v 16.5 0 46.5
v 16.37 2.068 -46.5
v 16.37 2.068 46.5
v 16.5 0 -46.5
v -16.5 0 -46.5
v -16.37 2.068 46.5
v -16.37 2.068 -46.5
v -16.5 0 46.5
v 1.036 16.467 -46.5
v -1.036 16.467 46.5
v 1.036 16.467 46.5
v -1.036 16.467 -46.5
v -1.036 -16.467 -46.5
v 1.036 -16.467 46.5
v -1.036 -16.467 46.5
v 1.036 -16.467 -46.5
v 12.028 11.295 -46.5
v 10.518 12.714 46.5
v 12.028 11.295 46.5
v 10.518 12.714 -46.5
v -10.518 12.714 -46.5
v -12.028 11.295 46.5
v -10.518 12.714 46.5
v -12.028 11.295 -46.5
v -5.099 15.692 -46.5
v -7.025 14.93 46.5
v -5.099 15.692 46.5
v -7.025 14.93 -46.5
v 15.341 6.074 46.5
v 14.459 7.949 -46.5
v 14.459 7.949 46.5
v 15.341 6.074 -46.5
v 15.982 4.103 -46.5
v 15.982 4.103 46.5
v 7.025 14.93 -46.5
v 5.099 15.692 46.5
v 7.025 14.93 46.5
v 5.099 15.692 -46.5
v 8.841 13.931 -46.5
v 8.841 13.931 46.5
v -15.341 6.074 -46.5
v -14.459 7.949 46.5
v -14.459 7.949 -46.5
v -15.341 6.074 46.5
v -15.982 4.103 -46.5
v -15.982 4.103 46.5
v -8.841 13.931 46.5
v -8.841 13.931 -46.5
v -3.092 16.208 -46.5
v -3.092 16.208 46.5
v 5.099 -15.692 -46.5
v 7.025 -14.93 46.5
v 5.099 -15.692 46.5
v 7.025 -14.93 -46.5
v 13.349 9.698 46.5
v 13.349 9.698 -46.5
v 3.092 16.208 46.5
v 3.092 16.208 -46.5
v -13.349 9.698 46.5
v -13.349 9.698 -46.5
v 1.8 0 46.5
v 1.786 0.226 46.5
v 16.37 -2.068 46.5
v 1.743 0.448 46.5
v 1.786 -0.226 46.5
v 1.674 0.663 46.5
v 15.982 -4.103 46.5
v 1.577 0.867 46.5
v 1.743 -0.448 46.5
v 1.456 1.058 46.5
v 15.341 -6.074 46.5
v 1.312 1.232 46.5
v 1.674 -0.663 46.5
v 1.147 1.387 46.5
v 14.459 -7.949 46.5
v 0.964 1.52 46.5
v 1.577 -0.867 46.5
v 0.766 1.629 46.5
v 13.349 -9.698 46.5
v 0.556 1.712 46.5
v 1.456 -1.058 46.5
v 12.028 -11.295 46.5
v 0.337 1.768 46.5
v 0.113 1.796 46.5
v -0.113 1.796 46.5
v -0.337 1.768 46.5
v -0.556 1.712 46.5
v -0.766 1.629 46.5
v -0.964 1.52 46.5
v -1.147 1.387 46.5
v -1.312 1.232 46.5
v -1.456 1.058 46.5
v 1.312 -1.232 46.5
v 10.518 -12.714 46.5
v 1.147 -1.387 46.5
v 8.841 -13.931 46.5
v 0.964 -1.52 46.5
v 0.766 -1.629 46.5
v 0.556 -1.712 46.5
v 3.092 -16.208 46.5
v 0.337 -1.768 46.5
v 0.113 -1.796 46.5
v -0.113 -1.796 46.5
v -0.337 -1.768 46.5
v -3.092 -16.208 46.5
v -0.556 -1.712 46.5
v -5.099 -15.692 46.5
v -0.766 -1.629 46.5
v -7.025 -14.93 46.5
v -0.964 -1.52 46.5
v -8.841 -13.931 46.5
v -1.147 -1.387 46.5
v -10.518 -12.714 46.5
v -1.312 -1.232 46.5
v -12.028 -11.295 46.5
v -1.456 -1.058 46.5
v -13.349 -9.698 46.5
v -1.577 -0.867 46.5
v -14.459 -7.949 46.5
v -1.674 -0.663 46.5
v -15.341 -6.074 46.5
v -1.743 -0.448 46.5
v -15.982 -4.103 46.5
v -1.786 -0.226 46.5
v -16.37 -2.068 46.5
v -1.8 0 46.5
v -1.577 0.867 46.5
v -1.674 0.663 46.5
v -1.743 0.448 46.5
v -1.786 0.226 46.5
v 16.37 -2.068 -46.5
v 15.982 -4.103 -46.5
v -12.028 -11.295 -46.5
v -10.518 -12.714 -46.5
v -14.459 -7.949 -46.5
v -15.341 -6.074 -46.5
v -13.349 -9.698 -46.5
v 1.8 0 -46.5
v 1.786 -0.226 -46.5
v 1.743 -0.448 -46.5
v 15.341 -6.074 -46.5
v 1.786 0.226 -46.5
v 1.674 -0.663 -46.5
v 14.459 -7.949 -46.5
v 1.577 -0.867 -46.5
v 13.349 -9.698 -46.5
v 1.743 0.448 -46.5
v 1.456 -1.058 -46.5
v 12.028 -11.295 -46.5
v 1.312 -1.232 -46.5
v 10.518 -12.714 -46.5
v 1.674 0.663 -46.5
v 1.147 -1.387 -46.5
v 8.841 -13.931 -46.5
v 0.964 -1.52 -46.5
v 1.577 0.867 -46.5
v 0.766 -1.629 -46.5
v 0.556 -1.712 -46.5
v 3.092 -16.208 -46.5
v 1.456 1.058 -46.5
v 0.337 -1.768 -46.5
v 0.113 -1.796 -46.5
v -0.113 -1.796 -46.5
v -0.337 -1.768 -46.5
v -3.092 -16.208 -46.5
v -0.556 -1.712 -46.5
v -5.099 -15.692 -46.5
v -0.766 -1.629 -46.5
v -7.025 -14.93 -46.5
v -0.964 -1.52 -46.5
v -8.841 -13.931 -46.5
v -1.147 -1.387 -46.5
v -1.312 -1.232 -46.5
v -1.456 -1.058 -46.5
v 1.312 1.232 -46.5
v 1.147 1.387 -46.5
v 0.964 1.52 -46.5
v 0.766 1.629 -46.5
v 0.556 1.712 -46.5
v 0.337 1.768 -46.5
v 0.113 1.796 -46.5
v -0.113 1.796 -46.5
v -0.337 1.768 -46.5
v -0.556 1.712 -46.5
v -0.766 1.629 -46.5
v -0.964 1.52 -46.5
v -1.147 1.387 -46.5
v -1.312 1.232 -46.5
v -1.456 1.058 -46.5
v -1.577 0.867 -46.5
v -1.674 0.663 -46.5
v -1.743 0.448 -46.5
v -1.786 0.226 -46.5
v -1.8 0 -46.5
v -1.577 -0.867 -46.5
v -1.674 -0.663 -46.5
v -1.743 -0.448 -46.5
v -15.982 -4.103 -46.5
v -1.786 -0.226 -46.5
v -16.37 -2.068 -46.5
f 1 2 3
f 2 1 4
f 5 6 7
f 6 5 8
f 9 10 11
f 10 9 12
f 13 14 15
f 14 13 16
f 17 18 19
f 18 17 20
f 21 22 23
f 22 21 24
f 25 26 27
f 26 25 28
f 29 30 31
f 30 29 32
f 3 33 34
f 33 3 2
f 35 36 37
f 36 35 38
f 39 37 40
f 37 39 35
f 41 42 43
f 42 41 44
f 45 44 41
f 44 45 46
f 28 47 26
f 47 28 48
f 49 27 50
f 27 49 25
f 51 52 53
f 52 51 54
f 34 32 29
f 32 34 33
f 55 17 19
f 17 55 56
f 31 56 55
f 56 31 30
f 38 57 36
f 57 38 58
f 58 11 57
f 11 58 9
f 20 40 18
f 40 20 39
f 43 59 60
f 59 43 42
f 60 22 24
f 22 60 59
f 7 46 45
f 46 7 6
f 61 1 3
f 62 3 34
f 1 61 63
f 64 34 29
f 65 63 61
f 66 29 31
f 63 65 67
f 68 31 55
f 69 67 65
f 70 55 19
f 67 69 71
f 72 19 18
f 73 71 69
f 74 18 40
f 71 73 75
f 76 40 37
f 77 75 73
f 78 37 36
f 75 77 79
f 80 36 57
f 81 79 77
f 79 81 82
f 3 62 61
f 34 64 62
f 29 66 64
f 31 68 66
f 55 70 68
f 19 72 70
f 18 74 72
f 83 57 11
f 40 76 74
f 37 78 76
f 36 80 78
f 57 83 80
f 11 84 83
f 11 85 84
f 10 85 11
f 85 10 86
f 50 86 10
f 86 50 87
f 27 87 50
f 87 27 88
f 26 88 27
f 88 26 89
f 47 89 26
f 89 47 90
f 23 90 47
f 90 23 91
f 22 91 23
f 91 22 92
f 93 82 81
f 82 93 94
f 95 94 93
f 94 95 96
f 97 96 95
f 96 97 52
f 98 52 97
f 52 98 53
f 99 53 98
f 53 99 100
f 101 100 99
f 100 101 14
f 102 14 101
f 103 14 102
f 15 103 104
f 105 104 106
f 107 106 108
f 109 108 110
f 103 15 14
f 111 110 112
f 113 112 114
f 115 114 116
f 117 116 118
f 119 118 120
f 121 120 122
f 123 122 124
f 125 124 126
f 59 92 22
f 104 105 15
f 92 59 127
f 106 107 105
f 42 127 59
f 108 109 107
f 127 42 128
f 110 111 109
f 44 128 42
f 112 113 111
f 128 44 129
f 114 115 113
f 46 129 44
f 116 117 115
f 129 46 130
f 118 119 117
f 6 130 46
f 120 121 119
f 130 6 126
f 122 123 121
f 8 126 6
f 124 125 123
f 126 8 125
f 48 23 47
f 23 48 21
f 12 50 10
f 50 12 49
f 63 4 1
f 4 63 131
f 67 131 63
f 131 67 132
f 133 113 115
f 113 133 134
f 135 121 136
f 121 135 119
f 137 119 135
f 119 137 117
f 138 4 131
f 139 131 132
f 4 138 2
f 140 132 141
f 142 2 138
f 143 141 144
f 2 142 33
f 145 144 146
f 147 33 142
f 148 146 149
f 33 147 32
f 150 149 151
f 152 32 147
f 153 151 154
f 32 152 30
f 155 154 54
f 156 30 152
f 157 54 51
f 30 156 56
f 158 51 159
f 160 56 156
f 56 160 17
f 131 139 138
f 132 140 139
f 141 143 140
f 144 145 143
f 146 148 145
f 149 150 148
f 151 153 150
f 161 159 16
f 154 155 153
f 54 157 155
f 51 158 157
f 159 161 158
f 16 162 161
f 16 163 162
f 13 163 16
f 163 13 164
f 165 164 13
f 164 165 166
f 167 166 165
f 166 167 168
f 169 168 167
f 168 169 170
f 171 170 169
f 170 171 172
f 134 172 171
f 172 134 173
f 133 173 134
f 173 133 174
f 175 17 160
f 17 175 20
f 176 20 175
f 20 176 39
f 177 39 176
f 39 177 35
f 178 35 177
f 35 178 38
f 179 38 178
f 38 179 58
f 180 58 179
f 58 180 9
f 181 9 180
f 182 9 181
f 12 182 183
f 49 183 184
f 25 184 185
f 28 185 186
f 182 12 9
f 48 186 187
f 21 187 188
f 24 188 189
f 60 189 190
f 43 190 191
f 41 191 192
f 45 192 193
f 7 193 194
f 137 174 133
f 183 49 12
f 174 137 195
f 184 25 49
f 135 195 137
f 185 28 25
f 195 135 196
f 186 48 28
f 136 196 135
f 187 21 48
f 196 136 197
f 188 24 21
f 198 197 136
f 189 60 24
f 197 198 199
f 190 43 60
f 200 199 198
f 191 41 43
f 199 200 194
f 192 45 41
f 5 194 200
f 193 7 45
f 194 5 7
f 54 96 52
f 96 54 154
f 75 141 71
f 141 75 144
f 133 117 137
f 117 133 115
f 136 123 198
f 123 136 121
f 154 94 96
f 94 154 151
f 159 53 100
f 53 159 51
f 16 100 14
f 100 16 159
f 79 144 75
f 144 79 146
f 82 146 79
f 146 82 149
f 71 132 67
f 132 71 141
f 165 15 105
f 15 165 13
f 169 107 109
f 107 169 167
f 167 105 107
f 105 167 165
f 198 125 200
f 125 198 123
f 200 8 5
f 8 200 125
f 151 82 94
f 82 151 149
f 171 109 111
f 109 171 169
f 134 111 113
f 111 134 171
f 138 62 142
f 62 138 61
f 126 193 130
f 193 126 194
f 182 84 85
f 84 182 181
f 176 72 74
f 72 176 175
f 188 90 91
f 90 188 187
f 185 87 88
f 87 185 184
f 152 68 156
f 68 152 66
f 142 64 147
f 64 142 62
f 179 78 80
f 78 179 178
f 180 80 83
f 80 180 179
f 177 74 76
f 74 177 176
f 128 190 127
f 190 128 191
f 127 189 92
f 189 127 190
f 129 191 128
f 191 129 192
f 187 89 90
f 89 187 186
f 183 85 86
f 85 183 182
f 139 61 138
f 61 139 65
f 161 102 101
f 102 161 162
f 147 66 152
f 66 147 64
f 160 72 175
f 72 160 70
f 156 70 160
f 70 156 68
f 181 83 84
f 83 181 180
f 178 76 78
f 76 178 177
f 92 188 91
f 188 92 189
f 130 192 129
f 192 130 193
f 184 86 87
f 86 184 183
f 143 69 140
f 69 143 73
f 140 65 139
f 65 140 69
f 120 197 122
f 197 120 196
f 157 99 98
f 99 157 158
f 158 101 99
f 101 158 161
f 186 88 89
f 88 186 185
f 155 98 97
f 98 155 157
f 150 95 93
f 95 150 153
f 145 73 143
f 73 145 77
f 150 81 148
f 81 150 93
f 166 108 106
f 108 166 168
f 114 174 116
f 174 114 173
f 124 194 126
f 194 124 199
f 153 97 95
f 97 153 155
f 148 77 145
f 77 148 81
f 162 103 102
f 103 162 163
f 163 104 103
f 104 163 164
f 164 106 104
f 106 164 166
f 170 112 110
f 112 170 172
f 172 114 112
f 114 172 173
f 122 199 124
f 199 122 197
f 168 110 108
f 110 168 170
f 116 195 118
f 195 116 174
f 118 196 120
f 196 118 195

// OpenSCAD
$fn = 50;


difference() {
	union() {
		translate(v = [0, 0, -46.5000000000]) {
			cylinder(h = 93, r = 16.5000000000);
		}
	}
	union() {
		translate(v = [0, 0, -100.0000000000]) {
			cylinder(h = 200, r = 1.8000000000);
		}
	}
}
